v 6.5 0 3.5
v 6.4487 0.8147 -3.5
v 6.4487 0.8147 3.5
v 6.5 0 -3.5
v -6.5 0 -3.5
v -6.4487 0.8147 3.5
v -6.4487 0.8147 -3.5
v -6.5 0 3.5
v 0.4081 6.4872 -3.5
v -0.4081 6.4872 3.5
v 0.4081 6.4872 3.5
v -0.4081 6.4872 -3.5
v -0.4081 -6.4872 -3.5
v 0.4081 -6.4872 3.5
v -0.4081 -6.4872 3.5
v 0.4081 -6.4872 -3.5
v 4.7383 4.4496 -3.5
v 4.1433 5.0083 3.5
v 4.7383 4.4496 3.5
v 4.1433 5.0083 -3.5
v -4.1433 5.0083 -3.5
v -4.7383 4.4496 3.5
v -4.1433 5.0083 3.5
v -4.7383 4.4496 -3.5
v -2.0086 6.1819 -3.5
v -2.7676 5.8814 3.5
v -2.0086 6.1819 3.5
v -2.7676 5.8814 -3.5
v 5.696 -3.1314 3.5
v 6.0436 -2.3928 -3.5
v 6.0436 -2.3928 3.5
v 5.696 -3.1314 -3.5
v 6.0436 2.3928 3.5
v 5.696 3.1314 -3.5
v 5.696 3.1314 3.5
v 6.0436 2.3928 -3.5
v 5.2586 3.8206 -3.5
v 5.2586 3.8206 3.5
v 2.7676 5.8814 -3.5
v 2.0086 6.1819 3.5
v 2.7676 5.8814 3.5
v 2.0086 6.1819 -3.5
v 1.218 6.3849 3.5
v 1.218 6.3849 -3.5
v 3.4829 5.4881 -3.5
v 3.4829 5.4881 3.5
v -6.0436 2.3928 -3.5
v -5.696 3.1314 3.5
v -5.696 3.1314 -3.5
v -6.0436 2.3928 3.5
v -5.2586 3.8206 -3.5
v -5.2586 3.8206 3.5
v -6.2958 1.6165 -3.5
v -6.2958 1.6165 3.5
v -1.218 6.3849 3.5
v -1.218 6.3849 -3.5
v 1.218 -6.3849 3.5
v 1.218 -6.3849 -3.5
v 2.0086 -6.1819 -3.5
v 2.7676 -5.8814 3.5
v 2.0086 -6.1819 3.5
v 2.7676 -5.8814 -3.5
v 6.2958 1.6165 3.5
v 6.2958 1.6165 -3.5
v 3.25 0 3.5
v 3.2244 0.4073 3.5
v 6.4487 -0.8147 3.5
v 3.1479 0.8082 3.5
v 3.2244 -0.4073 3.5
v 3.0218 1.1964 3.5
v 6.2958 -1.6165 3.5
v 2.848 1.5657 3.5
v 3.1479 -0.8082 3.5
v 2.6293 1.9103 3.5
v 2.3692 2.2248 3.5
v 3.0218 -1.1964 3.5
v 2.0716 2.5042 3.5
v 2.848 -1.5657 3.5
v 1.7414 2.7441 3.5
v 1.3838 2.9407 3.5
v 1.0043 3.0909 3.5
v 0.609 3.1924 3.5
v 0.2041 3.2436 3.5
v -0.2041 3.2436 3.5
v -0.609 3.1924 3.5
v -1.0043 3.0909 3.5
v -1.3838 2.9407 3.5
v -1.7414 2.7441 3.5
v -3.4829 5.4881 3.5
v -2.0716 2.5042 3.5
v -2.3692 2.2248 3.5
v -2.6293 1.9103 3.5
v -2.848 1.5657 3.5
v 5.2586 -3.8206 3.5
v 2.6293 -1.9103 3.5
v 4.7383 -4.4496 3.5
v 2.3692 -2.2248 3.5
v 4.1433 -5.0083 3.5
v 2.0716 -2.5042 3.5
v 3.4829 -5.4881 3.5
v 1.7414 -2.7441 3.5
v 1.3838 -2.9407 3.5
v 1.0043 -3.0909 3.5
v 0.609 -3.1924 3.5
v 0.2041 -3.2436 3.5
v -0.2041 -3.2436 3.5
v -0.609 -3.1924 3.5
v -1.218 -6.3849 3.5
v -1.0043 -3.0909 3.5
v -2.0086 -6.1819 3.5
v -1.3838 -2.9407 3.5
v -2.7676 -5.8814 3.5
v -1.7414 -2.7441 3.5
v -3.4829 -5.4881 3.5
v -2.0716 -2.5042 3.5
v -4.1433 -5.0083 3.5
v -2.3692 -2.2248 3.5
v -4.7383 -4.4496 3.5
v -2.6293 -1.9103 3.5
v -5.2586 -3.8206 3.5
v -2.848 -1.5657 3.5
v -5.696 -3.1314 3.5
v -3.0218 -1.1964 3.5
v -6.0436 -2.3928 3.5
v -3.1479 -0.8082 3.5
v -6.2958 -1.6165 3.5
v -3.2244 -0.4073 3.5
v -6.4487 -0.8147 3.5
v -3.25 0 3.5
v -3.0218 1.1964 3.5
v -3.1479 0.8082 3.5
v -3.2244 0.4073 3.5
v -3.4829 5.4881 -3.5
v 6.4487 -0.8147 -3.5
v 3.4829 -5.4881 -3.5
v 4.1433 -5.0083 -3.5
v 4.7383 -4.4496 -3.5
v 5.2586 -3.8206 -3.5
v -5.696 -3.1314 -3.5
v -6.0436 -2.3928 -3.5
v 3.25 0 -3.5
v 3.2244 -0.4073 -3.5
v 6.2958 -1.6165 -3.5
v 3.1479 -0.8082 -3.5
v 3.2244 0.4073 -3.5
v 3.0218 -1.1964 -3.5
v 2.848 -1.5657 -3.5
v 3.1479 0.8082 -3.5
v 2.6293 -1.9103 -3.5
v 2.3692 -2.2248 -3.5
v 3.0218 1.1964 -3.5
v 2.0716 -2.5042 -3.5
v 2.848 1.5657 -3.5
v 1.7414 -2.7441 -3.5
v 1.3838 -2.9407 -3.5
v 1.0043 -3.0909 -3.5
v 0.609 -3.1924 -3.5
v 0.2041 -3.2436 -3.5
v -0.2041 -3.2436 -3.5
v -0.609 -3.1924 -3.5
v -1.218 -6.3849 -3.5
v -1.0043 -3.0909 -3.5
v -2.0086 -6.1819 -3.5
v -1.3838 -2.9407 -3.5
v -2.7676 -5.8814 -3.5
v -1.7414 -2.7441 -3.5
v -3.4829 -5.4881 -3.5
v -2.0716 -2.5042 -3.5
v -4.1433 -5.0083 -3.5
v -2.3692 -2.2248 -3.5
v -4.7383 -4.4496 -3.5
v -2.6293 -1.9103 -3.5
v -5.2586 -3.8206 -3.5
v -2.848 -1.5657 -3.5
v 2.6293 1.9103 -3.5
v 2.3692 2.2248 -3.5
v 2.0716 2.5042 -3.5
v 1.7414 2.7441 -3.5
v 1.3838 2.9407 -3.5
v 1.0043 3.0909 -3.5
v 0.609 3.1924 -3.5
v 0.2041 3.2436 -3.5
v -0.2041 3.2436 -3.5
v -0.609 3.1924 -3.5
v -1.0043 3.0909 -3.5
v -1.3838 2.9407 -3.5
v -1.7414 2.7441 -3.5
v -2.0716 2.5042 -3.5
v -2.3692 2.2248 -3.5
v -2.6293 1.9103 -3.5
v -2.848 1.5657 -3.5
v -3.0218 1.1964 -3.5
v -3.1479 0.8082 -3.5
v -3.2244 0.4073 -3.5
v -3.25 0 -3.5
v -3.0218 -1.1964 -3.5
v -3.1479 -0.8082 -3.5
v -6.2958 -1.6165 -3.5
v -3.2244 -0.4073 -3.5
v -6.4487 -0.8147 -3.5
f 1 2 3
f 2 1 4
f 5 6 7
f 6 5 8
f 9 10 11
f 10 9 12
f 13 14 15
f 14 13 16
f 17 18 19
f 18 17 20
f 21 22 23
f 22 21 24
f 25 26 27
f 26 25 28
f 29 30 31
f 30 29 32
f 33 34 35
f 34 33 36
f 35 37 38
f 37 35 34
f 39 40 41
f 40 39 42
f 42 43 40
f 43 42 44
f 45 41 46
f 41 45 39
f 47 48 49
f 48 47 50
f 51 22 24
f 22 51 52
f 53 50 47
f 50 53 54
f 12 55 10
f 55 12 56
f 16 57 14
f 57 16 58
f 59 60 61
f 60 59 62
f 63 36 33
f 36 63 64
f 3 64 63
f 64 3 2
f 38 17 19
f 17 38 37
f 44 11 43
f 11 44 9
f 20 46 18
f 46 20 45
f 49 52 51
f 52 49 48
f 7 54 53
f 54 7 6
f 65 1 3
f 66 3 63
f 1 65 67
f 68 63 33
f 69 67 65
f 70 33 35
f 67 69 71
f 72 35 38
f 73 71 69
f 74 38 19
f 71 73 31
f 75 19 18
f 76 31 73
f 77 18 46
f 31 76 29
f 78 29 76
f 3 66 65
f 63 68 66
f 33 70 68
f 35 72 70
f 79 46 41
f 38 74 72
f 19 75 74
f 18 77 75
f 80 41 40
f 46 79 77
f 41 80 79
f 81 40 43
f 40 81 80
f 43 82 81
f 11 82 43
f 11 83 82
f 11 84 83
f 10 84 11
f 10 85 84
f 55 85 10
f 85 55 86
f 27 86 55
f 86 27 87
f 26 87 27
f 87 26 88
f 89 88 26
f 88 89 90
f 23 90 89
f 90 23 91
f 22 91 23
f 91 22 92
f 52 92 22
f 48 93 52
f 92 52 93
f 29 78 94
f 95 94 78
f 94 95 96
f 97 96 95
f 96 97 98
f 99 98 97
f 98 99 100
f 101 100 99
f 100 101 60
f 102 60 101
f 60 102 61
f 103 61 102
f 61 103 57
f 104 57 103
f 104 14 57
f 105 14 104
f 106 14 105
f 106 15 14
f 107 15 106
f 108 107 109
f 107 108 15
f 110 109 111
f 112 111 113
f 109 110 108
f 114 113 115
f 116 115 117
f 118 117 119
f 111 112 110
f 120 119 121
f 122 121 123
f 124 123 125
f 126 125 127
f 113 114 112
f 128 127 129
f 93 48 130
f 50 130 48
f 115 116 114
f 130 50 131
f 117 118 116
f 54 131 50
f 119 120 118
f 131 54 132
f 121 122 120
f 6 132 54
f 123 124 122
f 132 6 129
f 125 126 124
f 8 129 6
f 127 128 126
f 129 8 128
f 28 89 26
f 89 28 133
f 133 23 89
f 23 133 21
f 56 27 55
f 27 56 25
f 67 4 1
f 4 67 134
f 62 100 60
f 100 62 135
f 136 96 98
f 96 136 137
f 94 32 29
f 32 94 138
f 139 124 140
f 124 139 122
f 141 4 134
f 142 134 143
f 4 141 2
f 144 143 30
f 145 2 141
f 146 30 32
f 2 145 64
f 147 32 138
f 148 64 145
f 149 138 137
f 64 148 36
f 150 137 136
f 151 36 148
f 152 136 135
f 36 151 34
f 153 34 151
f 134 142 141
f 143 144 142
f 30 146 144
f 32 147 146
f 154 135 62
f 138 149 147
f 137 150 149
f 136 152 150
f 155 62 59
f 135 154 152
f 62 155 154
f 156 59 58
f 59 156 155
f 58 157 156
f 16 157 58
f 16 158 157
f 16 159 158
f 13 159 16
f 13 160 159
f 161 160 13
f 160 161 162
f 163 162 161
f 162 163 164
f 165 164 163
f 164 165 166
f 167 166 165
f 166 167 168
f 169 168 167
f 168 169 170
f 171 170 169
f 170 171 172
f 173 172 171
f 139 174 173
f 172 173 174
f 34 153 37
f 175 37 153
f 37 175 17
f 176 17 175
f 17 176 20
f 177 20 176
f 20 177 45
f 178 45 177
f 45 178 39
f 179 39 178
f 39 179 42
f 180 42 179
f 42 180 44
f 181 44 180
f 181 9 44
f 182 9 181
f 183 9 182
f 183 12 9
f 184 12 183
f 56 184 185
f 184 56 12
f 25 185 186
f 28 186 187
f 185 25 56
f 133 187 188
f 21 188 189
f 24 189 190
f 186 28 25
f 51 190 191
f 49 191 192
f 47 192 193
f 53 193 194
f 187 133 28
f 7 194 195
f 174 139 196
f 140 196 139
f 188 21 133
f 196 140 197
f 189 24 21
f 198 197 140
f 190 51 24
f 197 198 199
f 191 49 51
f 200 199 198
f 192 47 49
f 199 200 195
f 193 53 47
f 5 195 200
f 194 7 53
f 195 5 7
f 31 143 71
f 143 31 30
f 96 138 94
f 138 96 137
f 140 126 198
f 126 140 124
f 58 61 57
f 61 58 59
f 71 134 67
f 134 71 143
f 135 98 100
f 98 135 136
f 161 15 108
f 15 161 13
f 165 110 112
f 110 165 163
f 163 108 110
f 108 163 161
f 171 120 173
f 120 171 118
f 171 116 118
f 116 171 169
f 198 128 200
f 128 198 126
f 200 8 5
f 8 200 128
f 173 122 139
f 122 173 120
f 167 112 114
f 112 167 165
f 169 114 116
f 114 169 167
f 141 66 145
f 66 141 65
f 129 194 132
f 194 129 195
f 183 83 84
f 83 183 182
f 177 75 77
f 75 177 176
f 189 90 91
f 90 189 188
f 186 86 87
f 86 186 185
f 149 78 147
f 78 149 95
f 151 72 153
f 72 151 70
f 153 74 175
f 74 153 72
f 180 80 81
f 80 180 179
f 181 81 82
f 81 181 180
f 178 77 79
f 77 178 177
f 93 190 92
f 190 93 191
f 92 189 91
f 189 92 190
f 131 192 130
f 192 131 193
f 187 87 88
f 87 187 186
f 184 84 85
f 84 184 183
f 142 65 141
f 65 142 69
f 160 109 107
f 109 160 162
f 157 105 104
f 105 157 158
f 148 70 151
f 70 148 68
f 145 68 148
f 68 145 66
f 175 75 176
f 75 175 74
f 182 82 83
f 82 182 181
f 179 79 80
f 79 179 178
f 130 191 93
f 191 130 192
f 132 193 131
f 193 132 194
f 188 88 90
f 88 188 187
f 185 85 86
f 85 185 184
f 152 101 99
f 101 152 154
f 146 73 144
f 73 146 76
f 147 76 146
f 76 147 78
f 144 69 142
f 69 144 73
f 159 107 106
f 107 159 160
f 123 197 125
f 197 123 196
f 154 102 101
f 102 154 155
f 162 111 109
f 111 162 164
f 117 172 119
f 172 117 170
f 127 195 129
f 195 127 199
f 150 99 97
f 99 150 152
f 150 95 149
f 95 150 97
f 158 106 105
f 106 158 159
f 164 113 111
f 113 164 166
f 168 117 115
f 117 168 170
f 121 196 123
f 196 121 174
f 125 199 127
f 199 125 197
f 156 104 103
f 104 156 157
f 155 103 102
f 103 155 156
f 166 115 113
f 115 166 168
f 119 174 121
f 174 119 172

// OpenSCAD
$fn = 50;


difference() {
	union() {
		translate(v = [0, 0, -3.5000000000]) {
			cylinder(h = 7, r = 6.5000000000);
		}
	}
	union() {
		translate(v = [0, 0, -100.0000000000]) {
			cylinder(h = 200, r = 3.2500000000);
		}
	}
}
